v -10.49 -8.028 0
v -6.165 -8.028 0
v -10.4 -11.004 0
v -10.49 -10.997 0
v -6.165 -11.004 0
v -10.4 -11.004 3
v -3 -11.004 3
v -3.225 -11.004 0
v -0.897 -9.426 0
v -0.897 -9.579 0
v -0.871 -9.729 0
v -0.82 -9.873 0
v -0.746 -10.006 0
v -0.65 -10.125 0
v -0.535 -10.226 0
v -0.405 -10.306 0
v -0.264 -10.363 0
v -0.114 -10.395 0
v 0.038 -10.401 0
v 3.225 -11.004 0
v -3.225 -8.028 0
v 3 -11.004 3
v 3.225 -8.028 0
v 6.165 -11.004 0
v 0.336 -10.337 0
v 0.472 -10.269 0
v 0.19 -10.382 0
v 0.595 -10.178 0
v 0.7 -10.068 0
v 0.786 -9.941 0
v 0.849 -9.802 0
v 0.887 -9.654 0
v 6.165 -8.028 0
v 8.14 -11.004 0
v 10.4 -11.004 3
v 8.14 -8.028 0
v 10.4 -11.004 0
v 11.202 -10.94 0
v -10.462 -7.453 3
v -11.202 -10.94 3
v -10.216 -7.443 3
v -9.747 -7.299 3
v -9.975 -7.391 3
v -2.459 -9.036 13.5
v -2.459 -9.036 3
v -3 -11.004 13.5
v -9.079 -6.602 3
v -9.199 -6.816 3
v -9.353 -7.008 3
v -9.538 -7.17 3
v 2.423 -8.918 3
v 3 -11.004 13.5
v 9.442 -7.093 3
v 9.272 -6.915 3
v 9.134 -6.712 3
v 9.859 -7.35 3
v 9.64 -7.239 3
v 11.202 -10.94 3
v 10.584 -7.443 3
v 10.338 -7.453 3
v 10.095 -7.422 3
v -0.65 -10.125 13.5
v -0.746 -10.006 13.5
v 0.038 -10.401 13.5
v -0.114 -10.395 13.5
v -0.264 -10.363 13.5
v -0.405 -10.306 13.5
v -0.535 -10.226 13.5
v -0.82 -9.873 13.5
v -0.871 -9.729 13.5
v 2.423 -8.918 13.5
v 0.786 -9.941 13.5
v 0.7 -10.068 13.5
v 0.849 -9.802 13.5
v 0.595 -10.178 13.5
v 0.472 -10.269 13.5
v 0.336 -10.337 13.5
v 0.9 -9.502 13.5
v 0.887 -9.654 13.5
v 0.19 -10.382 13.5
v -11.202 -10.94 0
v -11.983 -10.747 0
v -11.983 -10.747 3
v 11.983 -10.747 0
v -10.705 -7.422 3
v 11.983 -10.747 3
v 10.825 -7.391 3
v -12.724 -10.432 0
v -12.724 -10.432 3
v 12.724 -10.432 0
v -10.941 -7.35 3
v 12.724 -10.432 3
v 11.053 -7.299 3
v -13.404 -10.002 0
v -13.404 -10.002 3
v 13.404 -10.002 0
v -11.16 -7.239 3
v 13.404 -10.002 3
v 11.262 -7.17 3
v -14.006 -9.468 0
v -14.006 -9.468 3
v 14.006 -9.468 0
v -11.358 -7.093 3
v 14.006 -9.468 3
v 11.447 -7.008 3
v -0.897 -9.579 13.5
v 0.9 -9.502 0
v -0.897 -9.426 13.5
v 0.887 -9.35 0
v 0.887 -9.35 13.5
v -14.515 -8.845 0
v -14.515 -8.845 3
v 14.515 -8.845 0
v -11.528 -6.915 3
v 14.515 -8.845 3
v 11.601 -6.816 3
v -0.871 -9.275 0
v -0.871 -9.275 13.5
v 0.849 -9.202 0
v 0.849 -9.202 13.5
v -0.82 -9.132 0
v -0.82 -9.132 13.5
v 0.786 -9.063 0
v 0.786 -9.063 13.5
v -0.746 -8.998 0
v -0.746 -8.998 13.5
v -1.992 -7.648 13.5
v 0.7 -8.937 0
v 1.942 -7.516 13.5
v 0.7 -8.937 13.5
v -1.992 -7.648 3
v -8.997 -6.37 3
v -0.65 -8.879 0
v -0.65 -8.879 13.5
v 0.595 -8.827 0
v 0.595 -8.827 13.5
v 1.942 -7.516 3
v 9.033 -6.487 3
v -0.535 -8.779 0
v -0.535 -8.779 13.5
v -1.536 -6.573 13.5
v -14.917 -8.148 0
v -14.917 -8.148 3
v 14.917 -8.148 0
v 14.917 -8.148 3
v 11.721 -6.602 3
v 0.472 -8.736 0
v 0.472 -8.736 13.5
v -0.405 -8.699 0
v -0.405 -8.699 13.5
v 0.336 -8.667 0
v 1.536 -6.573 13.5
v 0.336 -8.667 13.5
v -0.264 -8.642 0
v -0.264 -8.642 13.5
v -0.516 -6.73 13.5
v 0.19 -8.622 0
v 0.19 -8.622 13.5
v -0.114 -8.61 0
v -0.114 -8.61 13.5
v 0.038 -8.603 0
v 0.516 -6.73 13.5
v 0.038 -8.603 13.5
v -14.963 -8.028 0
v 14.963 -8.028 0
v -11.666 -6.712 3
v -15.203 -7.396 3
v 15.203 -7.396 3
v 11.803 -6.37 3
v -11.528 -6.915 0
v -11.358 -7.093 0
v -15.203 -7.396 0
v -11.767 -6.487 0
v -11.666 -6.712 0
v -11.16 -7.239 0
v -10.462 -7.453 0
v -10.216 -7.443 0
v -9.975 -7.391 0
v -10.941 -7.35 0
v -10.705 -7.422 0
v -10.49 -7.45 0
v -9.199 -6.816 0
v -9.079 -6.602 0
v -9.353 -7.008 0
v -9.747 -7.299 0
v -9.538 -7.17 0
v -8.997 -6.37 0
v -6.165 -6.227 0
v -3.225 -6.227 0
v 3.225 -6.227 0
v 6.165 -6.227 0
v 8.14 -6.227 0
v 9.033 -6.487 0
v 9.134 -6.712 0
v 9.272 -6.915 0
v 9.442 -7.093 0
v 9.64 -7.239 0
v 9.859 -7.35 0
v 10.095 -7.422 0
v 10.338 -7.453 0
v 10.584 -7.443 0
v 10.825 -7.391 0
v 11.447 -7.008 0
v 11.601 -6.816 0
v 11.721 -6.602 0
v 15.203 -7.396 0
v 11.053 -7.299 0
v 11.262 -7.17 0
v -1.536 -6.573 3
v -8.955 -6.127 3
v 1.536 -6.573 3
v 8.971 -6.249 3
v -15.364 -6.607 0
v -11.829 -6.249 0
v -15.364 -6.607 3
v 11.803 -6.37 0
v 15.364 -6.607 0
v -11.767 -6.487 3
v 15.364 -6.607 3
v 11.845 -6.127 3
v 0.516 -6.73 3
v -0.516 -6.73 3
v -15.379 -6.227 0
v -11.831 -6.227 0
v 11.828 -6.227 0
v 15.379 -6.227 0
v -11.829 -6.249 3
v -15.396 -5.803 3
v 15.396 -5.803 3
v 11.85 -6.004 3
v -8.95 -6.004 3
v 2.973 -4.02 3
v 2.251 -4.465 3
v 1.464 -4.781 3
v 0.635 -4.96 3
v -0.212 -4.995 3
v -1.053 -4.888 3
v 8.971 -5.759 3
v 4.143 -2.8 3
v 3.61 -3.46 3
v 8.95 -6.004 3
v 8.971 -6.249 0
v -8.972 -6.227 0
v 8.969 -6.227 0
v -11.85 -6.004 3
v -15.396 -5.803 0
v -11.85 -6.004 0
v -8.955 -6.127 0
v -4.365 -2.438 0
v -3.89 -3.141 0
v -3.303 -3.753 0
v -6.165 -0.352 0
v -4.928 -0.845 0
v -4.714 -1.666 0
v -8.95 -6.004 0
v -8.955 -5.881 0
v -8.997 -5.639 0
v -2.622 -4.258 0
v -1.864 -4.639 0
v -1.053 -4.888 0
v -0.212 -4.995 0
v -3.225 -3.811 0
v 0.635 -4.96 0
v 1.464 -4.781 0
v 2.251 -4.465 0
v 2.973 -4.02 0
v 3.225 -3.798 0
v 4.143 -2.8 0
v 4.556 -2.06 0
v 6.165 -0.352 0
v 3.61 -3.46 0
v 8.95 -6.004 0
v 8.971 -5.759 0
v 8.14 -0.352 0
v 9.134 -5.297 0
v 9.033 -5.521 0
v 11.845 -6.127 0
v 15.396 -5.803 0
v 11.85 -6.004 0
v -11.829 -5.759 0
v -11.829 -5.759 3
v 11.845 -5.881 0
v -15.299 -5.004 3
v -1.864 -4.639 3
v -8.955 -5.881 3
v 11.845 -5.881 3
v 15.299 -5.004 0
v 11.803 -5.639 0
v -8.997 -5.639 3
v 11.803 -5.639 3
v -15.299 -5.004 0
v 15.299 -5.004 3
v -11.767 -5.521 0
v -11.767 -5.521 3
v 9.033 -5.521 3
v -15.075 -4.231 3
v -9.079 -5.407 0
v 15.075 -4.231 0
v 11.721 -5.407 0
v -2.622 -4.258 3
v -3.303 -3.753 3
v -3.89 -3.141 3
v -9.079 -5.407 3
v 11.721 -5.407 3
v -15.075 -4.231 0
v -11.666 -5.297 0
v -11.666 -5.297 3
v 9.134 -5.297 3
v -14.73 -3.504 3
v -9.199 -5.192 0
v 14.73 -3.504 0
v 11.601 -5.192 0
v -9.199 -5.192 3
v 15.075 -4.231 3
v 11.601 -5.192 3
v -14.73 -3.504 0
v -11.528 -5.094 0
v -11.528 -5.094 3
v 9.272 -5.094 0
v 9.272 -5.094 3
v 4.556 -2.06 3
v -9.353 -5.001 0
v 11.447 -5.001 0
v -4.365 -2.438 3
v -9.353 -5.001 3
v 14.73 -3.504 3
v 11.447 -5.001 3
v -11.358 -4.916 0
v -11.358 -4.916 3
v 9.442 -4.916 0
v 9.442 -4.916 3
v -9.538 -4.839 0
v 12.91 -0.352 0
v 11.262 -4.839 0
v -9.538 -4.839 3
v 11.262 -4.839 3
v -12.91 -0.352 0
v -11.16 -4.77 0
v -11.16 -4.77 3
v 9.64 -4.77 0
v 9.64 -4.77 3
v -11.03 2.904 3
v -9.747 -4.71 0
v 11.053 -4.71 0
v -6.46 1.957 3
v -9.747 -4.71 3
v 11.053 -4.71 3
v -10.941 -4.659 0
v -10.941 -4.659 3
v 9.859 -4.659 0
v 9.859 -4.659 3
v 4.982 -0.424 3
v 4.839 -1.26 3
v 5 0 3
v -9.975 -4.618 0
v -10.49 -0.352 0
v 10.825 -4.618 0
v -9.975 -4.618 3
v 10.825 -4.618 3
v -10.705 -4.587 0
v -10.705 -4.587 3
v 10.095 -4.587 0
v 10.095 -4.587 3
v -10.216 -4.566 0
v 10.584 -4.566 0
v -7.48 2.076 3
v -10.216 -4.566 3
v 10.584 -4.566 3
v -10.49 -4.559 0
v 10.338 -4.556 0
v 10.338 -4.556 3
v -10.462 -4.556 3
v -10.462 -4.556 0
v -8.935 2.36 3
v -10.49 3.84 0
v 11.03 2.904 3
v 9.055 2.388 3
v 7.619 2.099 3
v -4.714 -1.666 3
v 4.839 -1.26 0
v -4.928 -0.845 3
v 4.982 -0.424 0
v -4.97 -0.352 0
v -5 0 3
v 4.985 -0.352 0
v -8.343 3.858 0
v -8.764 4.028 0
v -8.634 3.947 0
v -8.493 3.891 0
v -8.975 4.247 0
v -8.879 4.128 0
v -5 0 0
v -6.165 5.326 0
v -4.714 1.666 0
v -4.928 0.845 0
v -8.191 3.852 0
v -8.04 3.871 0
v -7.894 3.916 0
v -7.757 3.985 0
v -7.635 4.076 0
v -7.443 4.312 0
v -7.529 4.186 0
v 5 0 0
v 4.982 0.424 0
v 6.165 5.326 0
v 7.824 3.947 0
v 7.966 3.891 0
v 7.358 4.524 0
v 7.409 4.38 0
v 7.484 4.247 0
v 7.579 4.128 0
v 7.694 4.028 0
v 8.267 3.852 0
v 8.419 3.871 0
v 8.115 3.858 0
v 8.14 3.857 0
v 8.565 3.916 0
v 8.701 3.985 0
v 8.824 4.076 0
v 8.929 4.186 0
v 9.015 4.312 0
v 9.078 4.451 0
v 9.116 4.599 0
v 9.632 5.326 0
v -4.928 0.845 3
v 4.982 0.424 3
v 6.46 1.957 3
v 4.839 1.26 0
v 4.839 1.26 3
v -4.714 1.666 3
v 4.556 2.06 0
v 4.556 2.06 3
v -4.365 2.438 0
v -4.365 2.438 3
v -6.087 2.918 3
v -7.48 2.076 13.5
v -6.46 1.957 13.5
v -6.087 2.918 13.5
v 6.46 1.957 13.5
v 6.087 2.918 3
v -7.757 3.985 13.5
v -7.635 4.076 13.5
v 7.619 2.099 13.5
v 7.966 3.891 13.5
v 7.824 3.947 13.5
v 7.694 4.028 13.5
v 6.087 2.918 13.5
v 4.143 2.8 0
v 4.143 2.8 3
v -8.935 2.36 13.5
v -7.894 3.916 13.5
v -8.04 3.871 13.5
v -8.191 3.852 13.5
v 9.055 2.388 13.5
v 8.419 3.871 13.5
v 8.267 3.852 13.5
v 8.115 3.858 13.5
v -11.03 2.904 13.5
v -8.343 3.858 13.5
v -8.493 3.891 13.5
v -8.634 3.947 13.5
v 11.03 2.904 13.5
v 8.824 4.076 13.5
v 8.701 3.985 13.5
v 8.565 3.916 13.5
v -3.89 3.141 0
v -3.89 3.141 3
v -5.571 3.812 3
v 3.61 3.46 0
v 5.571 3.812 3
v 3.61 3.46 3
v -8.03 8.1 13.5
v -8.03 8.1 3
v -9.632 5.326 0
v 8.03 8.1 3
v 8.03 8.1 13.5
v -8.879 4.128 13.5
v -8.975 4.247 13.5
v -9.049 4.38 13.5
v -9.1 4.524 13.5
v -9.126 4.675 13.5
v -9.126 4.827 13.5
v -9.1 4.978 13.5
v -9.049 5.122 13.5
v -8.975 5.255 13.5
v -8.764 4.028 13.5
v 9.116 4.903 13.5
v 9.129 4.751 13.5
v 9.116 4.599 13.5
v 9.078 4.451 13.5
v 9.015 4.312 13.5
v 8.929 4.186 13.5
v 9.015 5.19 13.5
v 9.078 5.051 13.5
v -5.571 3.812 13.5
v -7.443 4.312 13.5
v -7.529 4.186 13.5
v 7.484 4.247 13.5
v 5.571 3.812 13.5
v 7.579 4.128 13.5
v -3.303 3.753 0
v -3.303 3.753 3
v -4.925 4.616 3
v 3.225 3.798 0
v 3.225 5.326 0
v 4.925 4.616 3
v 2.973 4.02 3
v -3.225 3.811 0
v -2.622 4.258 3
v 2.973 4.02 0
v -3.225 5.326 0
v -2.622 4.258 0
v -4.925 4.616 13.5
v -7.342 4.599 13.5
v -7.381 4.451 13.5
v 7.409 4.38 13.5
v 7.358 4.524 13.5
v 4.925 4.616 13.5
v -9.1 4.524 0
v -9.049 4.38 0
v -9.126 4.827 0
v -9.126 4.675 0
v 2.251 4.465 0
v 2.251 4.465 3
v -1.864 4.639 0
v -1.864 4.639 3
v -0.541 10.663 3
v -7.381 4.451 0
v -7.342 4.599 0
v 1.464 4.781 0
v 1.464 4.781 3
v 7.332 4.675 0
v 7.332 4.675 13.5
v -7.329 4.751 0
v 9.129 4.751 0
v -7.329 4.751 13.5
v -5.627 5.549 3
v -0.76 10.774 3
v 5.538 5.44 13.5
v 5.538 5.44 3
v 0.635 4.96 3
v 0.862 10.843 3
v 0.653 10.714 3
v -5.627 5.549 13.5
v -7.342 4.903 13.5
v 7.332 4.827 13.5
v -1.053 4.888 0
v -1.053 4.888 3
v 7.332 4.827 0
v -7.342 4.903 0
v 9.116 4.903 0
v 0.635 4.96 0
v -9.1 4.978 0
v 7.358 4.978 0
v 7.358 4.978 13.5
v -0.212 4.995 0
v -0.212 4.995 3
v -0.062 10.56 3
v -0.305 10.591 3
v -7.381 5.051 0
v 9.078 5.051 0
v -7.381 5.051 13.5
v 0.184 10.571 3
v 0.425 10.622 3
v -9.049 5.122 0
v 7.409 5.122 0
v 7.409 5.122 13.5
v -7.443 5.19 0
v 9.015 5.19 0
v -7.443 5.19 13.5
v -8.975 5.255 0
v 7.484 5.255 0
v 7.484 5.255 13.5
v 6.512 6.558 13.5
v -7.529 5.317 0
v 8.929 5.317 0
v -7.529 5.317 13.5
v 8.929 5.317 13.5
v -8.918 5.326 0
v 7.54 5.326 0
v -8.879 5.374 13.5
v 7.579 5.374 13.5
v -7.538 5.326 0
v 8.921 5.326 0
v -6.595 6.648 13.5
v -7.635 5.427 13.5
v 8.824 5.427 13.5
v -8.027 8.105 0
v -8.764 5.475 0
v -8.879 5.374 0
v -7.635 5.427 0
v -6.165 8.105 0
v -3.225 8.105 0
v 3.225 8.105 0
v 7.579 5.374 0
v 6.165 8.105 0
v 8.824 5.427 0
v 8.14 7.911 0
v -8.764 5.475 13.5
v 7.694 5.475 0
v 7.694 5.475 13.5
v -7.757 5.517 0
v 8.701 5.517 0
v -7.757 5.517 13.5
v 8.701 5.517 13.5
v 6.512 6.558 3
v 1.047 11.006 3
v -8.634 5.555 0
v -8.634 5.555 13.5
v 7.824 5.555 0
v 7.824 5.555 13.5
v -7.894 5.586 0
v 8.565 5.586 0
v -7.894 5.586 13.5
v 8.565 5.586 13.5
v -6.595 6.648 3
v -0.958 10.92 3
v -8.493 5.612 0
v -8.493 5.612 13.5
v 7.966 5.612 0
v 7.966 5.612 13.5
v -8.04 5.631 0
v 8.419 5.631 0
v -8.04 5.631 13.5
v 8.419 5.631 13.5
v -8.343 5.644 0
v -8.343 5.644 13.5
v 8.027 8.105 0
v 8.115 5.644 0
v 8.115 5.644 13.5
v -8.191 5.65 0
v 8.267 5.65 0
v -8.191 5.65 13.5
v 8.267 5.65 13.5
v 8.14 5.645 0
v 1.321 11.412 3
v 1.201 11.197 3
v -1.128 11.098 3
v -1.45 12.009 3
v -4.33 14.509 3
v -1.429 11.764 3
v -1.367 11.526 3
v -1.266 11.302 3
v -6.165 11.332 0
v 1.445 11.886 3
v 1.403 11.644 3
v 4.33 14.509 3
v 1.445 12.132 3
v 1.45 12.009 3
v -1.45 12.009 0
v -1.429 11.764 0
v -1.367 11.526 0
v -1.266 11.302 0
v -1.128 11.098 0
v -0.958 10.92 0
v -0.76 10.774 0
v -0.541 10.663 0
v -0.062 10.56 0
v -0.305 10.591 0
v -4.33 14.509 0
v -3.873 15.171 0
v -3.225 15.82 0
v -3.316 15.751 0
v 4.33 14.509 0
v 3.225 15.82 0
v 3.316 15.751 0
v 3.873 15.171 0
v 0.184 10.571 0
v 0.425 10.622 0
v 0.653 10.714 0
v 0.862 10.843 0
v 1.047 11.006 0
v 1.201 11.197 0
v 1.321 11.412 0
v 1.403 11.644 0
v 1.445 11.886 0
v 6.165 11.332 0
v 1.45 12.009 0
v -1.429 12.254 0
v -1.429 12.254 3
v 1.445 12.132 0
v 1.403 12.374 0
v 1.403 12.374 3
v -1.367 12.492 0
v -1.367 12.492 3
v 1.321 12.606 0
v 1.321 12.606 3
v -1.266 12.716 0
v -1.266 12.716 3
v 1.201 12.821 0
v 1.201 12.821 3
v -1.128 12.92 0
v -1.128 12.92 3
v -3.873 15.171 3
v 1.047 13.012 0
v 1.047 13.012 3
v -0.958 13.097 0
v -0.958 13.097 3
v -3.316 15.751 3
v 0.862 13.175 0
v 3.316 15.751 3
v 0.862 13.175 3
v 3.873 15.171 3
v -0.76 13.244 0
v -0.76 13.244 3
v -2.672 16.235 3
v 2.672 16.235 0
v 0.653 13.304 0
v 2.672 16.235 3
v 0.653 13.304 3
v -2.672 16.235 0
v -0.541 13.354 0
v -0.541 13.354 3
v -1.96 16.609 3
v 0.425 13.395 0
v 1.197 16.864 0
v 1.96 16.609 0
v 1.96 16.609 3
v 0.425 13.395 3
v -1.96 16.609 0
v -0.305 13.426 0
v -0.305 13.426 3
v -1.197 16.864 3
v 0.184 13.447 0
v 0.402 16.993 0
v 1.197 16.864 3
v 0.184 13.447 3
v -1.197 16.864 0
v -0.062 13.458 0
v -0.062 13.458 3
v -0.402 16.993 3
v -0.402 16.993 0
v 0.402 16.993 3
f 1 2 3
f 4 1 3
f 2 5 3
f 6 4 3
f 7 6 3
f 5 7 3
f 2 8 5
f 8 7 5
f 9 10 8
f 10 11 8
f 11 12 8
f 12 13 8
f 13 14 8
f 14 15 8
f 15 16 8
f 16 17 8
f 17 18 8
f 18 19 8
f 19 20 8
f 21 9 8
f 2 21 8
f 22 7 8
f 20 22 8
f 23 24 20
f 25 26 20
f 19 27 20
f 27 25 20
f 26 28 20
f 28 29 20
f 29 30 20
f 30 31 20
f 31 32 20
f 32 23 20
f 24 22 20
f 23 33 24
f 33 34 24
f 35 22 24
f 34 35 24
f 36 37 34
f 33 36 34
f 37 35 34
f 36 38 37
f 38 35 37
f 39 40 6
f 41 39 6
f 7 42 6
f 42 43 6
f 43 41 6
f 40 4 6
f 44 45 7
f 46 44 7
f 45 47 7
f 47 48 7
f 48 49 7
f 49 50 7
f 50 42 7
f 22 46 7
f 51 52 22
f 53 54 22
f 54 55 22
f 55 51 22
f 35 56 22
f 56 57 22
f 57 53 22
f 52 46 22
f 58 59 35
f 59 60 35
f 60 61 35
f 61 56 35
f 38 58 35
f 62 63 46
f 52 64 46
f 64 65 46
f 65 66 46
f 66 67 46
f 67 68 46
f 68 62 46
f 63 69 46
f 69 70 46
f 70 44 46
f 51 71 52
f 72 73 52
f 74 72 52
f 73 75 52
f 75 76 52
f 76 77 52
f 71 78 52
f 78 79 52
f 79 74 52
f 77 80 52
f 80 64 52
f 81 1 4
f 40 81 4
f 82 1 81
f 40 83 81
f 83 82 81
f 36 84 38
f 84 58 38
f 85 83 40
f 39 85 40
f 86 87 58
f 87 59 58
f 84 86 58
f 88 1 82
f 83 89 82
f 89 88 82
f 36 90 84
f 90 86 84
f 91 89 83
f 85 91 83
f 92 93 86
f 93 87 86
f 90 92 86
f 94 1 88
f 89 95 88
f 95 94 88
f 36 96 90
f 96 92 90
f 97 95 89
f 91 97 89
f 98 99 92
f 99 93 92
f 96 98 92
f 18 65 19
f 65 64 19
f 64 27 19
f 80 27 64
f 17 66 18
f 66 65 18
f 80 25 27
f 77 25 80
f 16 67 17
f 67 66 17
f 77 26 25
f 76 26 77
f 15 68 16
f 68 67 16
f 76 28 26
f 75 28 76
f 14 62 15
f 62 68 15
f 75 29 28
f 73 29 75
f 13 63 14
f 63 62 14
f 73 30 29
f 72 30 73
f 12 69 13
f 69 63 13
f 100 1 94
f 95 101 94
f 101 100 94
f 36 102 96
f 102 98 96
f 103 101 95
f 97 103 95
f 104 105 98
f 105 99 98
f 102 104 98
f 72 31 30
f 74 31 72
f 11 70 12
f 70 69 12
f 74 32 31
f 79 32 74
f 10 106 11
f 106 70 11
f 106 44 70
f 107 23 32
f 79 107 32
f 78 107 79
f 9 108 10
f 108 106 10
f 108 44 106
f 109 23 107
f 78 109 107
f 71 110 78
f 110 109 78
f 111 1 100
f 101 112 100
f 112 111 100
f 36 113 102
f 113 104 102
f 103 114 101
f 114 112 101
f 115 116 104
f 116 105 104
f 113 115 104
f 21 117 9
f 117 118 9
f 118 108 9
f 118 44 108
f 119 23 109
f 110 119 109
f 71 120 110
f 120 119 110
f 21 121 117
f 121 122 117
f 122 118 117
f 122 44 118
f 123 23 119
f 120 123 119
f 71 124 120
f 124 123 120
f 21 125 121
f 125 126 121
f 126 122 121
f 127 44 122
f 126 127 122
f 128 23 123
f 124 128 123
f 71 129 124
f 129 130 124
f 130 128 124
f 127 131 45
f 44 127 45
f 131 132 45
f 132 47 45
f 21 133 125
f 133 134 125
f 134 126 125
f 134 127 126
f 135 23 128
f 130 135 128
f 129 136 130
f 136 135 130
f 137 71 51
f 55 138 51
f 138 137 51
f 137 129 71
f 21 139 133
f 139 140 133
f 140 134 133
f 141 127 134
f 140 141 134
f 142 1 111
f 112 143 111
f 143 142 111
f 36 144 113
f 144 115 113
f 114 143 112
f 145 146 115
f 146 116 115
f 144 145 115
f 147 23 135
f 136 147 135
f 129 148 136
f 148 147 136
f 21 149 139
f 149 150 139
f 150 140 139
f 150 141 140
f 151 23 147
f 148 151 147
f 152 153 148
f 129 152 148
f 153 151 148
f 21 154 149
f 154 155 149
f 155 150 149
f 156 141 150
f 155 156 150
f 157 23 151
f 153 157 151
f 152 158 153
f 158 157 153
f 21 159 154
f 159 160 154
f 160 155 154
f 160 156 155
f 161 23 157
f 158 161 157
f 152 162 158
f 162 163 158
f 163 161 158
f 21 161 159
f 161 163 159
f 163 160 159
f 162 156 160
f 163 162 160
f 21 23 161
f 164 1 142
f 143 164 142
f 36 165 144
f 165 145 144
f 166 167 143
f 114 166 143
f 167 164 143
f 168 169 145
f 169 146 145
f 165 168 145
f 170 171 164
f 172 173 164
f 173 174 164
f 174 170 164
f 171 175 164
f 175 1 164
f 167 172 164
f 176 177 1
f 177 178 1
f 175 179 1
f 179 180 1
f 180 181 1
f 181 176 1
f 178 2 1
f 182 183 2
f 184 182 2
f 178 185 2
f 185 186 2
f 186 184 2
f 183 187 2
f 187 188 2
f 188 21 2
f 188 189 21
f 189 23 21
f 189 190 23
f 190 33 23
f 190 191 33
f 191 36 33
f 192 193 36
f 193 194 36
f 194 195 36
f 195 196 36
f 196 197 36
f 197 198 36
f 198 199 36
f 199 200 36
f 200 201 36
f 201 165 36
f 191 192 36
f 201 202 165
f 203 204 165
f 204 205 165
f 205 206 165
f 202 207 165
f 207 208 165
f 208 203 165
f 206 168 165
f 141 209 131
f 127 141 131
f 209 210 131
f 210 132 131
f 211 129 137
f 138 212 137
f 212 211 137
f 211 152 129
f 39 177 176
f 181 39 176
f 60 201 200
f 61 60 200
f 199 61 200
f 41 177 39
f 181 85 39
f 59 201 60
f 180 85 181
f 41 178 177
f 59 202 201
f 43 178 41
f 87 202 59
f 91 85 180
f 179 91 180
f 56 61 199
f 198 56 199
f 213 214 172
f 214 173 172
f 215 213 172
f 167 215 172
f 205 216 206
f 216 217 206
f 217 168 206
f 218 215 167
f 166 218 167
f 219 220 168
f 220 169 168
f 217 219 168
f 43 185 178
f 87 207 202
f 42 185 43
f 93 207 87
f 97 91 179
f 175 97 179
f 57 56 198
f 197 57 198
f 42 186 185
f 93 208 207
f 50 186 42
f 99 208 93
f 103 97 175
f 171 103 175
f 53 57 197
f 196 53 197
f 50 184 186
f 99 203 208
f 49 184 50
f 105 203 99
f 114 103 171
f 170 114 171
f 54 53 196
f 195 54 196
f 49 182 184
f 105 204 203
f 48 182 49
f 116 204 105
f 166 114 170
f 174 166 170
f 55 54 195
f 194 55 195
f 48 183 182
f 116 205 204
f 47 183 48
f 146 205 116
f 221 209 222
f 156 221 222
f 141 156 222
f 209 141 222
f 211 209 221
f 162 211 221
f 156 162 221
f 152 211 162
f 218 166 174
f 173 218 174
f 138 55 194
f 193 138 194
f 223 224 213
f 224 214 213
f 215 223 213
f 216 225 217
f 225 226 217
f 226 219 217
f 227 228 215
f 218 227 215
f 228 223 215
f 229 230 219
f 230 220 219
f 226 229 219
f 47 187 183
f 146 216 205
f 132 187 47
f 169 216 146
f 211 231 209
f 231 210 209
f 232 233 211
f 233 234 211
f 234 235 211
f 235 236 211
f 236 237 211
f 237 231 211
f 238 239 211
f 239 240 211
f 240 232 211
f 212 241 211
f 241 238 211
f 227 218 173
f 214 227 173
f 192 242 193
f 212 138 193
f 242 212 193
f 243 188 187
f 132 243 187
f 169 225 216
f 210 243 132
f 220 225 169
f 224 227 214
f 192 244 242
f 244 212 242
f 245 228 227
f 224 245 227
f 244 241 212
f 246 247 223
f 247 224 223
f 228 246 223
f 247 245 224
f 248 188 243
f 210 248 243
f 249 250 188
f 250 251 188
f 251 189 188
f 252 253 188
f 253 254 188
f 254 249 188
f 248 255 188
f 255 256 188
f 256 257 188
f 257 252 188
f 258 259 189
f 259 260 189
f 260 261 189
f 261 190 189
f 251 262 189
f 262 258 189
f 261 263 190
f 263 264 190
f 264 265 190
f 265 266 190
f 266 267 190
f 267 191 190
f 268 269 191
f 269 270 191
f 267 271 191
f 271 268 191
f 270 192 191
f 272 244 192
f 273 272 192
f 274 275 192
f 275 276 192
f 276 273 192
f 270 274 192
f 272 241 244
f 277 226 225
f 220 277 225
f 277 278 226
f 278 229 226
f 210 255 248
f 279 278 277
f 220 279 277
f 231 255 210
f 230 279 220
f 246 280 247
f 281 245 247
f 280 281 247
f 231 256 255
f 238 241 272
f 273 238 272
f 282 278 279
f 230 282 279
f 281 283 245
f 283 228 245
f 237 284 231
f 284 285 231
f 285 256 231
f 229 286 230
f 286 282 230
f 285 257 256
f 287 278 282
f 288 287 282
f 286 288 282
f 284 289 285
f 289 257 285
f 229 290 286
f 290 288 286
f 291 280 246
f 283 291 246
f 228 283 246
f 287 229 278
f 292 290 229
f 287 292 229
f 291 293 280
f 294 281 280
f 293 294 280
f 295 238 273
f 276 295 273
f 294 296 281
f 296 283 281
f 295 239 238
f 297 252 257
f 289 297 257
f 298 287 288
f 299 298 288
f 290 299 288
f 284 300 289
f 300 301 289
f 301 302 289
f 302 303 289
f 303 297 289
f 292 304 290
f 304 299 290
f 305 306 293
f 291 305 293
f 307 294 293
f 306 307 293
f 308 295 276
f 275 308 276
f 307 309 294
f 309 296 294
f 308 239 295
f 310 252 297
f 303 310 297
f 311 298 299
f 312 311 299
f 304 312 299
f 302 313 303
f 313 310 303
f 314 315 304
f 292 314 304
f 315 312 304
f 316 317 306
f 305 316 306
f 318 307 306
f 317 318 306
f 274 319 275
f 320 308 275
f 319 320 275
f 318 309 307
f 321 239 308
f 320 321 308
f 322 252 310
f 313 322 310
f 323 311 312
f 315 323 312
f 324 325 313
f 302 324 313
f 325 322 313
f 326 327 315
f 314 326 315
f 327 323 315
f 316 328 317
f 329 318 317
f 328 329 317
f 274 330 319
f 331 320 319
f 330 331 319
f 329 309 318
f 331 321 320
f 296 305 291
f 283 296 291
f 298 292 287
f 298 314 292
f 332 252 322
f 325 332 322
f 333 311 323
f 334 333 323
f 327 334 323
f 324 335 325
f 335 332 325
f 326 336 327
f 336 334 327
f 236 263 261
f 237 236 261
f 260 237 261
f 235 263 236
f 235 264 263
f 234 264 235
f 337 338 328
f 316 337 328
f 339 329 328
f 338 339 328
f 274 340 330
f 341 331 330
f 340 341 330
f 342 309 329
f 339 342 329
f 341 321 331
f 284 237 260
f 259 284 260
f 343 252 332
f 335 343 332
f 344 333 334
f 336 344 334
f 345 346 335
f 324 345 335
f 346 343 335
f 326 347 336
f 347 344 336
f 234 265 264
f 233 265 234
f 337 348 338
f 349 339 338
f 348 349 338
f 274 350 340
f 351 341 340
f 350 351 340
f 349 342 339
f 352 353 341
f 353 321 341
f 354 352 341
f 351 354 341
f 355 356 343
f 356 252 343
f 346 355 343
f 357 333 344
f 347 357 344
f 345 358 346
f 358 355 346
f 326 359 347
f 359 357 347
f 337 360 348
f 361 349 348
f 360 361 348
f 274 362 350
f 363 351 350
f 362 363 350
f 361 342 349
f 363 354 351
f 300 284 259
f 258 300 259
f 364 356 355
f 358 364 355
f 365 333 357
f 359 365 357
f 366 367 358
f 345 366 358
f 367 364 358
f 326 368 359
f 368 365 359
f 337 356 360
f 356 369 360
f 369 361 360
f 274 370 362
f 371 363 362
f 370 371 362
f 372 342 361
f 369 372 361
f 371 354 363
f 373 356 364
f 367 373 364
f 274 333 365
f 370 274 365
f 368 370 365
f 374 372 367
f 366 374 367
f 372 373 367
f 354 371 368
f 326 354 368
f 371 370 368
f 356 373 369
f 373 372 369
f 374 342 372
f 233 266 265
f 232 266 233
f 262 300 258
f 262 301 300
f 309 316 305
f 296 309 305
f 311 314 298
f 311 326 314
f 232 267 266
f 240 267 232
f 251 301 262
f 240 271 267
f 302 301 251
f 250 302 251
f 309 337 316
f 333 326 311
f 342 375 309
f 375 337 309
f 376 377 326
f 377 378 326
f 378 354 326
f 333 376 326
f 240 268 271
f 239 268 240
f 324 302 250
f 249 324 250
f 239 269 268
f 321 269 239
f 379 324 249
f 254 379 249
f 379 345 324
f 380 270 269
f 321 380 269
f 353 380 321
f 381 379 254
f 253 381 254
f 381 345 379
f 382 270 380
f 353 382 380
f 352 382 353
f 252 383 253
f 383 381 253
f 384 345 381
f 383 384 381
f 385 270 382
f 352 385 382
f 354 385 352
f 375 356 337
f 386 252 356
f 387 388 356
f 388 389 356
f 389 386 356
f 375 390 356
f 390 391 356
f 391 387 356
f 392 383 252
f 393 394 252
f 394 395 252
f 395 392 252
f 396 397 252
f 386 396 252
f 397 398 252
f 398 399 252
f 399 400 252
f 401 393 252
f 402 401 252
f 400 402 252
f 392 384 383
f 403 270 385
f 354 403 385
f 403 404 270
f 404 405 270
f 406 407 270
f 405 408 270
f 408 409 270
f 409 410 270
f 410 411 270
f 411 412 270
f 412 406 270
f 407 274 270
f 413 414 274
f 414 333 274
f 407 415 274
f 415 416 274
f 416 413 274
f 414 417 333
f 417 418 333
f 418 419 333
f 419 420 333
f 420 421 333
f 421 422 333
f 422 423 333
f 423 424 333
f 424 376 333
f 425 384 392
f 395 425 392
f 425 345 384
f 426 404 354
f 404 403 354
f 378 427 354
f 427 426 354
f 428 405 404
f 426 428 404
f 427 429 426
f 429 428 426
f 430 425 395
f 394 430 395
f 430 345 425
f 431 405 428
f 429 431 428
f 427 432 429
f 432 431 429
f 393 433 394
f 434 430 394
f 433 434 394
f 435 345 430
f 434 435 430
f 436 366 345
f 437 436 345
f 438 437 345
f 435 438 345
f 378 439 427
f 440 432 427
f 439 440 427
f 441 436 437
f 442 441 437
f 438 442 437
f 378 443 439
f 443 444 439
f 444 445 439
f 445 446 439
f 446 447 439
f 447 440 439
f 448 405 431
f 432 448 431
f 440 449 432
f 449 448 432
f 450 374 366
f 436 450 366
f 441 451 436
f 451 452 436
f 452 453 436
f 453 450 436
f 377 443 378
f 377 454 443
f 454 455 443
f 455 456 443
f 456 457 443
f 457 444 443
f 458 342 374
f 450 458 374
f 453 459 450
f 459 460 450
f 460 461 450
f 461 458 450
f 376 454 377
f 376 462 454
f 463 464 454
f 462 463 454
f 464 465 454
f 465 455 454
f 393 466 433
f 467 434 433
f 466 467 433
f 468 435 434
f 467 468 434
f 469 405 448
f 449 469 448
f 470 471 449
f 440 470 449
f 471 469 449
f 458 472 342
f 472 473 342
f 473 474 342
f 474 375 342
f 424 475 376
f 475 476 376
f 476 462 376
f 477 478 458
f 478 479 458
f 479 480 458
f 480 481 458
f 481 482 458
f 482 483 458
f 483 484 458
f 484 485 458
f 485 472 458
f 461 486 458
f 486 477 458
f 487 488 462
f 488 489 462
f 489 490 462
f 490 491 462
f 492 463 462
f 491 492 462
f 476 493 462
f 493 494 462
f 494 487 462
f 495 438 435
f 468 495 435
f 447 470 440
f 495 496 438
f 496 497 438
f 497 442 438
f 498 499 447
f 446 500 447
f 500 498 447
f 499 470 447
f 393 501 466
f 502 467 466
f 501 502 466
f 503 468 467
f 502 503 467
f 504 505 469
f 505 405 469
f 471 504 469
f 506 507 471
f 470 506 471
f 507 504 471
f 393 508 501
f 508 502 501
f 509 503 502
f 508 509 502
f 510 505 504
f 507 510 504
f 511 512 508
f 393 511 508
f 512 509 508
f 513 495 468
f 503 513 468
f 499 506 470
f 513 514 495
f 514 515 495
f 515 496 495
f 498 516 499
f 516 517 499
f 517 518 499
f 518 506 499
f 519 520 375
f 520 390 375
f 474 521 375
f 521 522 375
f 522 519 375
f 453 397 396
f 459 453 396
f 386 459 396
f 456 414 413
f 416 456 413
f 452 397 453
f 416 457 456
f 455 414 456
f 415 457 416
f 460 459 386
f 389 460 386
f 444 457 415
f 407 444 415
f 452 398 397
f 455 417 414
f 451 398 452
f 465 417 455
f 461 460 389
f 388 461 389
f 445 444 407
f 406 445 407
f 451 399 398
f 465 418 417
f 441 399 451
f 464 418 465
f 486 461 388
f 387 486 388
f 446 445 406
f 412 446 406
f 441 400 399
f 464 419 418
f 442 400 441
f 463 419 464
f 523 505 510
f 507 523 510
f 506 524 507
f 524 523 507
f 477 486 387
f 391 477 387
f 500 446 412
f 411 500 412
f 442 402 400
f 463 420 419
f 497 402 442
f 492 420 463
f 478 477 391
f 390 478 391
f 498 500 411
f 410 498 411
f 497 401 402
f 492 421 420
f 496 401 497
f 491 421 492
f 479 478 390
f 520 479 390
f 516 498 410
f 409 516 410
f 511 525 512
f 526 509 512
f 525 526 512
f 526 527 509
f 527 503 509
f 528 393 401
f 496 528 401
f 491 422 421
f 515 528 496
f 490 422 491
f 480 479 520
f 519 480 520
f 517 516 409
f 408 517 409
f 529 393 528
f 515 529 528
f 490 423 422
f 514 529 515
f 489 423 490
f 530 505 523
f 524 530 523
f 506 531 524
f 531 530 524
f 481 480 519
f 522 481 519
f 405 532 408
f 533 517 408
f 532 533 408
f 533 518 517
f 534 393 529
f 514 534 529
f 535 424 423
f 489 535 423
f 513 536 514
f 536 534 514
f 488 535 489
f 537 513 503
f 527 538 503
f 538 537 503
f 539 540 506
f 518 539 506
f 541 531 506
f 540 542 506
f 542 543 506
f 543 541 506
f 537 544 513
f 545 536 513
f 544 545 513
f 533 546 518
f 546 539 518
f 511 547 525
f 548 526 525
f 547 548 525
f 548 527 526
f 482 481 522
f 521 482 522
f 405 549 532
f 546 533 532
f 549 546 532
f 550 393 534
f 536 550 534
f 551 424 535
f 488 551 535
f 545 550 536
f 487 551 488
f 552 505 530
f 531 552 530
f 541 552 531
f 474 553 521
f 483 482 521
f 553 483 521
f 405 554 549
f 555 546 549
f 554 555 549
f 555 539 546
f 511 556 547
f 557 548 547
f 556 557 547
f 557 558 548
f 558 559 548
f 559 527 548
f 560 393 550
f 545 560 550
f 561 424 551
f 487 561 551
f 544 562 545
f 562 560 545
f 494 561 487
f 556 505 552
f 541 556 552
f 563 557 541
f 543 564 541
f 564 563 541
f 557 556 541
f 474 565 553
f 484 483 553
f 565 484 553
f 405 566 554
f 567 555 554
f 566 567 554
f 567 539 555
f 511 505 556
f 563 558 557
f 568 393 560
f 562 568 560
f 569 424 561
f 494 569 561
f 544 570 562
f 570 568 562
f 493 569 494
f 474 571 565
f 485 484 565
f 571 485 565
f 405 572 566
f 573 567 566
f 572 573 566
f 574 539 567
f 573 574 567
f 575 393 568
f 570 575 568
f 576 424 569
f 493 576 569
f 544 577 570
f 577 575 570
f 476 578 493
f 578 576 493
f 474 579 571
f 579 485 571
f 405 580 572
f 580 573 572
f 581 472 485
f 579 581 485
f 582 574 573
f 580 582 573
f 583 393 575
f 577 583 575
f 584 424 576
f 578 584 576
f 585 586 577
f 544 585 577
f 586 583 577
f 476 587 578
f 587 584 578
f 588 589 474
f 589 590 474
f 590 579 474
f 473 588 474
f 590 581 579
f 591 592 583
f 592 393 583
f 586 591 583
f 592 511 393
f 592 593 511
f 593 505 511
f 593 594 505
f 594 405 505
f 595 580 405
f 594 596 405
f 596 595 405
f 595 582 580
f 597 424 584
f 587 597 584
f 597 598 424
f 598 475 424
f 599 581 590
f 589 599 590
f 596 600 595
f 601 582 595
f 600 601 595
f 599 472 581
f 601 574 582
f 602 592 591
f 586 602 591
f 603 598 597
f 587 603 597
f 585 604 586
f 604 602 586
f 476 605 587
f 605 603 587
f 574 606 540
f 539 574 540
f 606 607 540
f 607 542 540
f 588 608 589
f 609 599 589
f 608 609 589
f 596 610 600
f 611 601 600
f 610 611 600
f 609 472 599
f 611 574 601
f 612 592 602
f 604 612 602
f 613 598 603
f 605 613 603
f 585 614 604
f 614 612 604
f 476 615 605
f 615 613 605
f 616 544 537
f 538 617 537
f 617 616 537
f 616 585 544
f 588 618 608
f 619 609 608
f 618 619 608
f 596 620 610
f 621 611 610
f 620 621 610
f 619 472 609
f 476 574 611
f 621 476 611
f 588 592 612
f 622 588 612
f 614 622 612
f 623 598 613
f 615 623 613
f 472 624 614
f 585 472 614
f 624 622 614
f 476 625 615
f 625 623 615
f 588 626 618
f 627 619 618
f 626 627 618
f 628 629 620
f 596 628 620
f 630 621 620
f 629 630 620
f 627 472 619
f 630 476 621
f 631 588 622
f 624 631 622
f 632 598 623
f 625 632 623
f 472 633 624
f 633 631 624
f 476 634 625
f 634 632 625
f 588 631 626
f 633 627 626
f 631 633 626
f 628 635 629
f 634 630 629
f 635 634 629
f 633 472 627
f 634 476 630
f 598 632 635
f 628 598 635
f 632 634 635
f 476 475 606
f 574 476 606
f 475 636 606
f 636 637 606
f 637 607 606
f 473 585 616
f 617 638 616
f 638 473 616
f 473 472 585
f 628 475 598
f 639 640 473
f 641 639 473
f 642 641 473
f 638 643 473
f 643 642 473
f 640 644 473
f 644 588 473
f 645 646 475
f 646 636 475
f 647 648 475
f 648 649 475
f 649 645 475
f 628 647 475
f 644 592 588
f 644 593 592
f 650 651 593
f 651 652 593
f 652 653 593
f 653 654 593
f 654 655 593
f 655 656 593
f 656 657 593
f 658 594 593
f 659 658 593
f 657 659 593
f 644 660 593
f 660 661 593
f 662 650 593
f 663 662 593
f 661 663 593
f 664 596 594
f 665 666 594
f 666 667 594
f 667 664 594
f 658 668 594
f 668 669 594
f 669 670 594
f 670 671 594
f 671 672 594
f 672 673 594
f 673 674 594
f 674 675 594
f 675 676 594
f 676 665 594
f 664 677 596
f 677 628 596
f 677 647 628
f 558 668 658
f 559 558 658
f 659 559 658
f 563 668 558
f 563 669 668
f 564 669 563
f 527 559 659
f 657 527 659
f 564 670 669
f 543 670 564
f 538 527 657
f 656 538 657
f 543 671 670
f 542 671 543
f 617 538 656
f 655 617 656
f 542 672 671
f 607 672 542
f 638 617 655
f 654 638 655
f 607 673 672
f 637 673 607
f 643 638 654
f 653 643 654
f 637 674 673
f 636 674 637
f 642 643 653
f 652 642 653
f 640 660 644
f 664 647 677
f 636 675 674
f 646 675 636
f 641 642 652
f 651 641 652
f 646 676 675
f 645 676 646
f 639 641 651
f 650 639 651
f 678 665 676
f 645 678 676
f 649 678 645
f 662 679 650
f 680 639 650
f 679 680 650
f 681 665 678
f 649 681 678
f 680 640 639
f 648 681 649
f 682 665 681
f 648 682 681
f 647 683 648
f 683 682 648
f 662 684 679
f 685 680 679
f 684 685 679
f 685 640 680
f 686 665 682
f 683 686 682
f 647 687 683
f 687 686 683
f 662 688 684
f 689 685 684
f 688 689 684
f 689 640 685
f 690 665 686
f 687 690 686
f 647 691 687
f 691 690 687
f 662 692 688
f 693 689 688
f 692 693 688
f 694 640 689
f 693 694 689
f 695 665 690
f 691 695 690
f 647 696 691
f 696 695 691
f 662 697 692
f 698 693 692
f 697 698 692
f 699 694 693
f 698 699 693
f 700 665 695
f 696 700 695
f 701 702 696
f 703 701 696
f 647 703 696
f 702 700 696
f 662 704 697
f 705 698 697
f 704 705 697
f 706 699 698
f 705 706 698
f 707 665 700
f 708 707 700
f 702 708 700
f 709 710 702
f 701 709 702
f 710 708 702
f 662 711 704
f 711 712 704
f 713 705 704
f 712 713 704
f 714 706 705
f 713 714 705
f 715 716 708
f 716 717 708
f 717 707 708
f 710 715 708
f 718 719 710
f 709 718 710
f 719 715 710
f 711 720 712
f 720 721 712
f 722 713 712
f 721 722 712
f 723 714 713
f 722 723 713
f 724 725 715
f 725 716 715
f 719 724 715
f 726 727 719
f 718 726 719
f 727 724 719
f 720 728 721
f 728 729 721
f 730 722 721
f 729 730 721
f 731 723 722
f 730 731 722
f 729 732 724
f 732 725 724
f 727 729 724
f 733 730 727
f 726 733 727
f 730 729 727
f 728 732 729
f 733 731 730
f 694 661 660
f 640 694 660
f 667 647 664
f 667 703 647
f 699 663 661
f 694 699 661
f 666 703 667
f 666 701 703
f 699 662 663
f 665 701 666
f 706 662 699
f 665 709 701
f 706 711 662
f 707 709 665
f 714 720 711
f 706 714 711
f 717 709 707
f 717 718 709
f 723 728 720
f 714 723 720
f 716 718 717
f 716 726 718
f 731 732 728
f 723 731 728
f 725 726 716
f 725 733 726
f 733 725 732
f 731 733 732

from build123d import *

# Parameters (mm, degrees)
SKETCH1_R           = 1.45
SKETCH1_R_2         = 5
BOSS_EXTRUDE1_DEPTH = 3
BOSS_EXTRUDE2_DEPTH = 10.5
SKETCH3_R           = 6.75
CUT_EXTRUDE1_DEPTH  = 11.5000001
SKETCH4_R           = 0.9
CUT_EXTRUDE2_DEPTH  = 14.5


with BuildPart() as part:
    # Sketch1 → Boss-Extrude1 (new body)
    with BuildSketch(Plane.XY):
        with BuildLine():
            Line((-14.730127019, -3.5044428), (-4.330127019, 14.508885599))
            ThreePointArc((-4.330127019, 14.508885599), (0, 17.008885599), (4.330127019, 14.508885599))
            Line((4.330127019, 14.508885599), (14.730127019, -3.5044428))
            ThreePointArc((14.730127019, -3.5044428), (14.730127019, -8.5044428), (10.4, -11.0044428))
            Line((10.4, -11.0044428), (-10.4, -11.0044428))
            ThreePointArc((-10.4, -11.0044428), (-14.730127019, -8.5044428), (-14.730127019, -3.5044428))
        make_face()
        with Locations((0, 12.008885599)):
            Circle(SKETCH1_R, mode=Mode.SUBTRACT)
        with Locations((-10.4, -6.0044428)):
            Circle(SKETCH1_R, mode=Mode.SUBTRACT)
        with Locations((10.4, -6.0044428)):
            Circle(SKETCH1_R, mode=Mode.SUBTRACT)
        Circle(SKETCH1_R_2, mode=Mode.SUBTRACT)
    extrude(amount=BOSS_EXTRUDE1_DEPTH)

    # Sketch2 → Boss-Extrude2 (add)
    with BuildSketch(Plane.XY.offset(3)):
        with BuildLine():
            Line((8.030127019, 8.100297611), (11.030127019, 2.904145188))
            add(Edge.make_bspline(
                [(8.030127019, 8.100297611), (-0.869872981, -0.5022214), (11.030127019, 2.904145188)],
                knots=[0, 0, 0, 1, 1, 1], degree=2))
        make_face()
        with BuildLine():
            Line((3, -11.0044428), (-3, -11.0044428))
            add(Edge.make_bspline(
                [(3, -11.0044428), (0, 1.0044428), (-3, -11.0044428)],
                knots=[0, 0, 0, 1, 1, 1], degree=2))
        make_face()
        with BuildLine():
            Line((-11.030127019, 2.904145188), (-8.030127019, 8.100297611))
            add(Edge.make_bspline(
                [(-11.030127019, 2.904145188), (0.869872981, -0.5022214), (-8.030127019, 8.100297611)],
                knots=[0, 0, 0, 1, 1, 1], degree=2))
        make_face()
    extrude(amount=BOSS_EXTRUDE2_DEPTH)

    # Sketch3 → Cut-Extrude1 (cut, through all)
    with BuildSketch(Plane.XY.offset(3)):
        Circle(SKETCH3_R)
    extrude(amount=CUT_EXTRUDE1_DEPTH, mode=Mode.SUBTRACT)

    # Sketch4 → Cut-Extrude2 (cut, through all)
    with BuildSketch(Plane.XY.offset(13.5)):
        with Locations((8.229165125, 4.7511107)):
            Circle(SKETCH4_R)
        with Locations((0, -9.5022214)):
            Circle(SKETCH4_R)
        with Locations((-8.229165125, 4.7511107)):
            Circle(SKETCH4_R)
    extrude(amount=-CUT_EXTRUDE2_DEPTH, mode=Mode.SUBTRACT)


solid = part.part
